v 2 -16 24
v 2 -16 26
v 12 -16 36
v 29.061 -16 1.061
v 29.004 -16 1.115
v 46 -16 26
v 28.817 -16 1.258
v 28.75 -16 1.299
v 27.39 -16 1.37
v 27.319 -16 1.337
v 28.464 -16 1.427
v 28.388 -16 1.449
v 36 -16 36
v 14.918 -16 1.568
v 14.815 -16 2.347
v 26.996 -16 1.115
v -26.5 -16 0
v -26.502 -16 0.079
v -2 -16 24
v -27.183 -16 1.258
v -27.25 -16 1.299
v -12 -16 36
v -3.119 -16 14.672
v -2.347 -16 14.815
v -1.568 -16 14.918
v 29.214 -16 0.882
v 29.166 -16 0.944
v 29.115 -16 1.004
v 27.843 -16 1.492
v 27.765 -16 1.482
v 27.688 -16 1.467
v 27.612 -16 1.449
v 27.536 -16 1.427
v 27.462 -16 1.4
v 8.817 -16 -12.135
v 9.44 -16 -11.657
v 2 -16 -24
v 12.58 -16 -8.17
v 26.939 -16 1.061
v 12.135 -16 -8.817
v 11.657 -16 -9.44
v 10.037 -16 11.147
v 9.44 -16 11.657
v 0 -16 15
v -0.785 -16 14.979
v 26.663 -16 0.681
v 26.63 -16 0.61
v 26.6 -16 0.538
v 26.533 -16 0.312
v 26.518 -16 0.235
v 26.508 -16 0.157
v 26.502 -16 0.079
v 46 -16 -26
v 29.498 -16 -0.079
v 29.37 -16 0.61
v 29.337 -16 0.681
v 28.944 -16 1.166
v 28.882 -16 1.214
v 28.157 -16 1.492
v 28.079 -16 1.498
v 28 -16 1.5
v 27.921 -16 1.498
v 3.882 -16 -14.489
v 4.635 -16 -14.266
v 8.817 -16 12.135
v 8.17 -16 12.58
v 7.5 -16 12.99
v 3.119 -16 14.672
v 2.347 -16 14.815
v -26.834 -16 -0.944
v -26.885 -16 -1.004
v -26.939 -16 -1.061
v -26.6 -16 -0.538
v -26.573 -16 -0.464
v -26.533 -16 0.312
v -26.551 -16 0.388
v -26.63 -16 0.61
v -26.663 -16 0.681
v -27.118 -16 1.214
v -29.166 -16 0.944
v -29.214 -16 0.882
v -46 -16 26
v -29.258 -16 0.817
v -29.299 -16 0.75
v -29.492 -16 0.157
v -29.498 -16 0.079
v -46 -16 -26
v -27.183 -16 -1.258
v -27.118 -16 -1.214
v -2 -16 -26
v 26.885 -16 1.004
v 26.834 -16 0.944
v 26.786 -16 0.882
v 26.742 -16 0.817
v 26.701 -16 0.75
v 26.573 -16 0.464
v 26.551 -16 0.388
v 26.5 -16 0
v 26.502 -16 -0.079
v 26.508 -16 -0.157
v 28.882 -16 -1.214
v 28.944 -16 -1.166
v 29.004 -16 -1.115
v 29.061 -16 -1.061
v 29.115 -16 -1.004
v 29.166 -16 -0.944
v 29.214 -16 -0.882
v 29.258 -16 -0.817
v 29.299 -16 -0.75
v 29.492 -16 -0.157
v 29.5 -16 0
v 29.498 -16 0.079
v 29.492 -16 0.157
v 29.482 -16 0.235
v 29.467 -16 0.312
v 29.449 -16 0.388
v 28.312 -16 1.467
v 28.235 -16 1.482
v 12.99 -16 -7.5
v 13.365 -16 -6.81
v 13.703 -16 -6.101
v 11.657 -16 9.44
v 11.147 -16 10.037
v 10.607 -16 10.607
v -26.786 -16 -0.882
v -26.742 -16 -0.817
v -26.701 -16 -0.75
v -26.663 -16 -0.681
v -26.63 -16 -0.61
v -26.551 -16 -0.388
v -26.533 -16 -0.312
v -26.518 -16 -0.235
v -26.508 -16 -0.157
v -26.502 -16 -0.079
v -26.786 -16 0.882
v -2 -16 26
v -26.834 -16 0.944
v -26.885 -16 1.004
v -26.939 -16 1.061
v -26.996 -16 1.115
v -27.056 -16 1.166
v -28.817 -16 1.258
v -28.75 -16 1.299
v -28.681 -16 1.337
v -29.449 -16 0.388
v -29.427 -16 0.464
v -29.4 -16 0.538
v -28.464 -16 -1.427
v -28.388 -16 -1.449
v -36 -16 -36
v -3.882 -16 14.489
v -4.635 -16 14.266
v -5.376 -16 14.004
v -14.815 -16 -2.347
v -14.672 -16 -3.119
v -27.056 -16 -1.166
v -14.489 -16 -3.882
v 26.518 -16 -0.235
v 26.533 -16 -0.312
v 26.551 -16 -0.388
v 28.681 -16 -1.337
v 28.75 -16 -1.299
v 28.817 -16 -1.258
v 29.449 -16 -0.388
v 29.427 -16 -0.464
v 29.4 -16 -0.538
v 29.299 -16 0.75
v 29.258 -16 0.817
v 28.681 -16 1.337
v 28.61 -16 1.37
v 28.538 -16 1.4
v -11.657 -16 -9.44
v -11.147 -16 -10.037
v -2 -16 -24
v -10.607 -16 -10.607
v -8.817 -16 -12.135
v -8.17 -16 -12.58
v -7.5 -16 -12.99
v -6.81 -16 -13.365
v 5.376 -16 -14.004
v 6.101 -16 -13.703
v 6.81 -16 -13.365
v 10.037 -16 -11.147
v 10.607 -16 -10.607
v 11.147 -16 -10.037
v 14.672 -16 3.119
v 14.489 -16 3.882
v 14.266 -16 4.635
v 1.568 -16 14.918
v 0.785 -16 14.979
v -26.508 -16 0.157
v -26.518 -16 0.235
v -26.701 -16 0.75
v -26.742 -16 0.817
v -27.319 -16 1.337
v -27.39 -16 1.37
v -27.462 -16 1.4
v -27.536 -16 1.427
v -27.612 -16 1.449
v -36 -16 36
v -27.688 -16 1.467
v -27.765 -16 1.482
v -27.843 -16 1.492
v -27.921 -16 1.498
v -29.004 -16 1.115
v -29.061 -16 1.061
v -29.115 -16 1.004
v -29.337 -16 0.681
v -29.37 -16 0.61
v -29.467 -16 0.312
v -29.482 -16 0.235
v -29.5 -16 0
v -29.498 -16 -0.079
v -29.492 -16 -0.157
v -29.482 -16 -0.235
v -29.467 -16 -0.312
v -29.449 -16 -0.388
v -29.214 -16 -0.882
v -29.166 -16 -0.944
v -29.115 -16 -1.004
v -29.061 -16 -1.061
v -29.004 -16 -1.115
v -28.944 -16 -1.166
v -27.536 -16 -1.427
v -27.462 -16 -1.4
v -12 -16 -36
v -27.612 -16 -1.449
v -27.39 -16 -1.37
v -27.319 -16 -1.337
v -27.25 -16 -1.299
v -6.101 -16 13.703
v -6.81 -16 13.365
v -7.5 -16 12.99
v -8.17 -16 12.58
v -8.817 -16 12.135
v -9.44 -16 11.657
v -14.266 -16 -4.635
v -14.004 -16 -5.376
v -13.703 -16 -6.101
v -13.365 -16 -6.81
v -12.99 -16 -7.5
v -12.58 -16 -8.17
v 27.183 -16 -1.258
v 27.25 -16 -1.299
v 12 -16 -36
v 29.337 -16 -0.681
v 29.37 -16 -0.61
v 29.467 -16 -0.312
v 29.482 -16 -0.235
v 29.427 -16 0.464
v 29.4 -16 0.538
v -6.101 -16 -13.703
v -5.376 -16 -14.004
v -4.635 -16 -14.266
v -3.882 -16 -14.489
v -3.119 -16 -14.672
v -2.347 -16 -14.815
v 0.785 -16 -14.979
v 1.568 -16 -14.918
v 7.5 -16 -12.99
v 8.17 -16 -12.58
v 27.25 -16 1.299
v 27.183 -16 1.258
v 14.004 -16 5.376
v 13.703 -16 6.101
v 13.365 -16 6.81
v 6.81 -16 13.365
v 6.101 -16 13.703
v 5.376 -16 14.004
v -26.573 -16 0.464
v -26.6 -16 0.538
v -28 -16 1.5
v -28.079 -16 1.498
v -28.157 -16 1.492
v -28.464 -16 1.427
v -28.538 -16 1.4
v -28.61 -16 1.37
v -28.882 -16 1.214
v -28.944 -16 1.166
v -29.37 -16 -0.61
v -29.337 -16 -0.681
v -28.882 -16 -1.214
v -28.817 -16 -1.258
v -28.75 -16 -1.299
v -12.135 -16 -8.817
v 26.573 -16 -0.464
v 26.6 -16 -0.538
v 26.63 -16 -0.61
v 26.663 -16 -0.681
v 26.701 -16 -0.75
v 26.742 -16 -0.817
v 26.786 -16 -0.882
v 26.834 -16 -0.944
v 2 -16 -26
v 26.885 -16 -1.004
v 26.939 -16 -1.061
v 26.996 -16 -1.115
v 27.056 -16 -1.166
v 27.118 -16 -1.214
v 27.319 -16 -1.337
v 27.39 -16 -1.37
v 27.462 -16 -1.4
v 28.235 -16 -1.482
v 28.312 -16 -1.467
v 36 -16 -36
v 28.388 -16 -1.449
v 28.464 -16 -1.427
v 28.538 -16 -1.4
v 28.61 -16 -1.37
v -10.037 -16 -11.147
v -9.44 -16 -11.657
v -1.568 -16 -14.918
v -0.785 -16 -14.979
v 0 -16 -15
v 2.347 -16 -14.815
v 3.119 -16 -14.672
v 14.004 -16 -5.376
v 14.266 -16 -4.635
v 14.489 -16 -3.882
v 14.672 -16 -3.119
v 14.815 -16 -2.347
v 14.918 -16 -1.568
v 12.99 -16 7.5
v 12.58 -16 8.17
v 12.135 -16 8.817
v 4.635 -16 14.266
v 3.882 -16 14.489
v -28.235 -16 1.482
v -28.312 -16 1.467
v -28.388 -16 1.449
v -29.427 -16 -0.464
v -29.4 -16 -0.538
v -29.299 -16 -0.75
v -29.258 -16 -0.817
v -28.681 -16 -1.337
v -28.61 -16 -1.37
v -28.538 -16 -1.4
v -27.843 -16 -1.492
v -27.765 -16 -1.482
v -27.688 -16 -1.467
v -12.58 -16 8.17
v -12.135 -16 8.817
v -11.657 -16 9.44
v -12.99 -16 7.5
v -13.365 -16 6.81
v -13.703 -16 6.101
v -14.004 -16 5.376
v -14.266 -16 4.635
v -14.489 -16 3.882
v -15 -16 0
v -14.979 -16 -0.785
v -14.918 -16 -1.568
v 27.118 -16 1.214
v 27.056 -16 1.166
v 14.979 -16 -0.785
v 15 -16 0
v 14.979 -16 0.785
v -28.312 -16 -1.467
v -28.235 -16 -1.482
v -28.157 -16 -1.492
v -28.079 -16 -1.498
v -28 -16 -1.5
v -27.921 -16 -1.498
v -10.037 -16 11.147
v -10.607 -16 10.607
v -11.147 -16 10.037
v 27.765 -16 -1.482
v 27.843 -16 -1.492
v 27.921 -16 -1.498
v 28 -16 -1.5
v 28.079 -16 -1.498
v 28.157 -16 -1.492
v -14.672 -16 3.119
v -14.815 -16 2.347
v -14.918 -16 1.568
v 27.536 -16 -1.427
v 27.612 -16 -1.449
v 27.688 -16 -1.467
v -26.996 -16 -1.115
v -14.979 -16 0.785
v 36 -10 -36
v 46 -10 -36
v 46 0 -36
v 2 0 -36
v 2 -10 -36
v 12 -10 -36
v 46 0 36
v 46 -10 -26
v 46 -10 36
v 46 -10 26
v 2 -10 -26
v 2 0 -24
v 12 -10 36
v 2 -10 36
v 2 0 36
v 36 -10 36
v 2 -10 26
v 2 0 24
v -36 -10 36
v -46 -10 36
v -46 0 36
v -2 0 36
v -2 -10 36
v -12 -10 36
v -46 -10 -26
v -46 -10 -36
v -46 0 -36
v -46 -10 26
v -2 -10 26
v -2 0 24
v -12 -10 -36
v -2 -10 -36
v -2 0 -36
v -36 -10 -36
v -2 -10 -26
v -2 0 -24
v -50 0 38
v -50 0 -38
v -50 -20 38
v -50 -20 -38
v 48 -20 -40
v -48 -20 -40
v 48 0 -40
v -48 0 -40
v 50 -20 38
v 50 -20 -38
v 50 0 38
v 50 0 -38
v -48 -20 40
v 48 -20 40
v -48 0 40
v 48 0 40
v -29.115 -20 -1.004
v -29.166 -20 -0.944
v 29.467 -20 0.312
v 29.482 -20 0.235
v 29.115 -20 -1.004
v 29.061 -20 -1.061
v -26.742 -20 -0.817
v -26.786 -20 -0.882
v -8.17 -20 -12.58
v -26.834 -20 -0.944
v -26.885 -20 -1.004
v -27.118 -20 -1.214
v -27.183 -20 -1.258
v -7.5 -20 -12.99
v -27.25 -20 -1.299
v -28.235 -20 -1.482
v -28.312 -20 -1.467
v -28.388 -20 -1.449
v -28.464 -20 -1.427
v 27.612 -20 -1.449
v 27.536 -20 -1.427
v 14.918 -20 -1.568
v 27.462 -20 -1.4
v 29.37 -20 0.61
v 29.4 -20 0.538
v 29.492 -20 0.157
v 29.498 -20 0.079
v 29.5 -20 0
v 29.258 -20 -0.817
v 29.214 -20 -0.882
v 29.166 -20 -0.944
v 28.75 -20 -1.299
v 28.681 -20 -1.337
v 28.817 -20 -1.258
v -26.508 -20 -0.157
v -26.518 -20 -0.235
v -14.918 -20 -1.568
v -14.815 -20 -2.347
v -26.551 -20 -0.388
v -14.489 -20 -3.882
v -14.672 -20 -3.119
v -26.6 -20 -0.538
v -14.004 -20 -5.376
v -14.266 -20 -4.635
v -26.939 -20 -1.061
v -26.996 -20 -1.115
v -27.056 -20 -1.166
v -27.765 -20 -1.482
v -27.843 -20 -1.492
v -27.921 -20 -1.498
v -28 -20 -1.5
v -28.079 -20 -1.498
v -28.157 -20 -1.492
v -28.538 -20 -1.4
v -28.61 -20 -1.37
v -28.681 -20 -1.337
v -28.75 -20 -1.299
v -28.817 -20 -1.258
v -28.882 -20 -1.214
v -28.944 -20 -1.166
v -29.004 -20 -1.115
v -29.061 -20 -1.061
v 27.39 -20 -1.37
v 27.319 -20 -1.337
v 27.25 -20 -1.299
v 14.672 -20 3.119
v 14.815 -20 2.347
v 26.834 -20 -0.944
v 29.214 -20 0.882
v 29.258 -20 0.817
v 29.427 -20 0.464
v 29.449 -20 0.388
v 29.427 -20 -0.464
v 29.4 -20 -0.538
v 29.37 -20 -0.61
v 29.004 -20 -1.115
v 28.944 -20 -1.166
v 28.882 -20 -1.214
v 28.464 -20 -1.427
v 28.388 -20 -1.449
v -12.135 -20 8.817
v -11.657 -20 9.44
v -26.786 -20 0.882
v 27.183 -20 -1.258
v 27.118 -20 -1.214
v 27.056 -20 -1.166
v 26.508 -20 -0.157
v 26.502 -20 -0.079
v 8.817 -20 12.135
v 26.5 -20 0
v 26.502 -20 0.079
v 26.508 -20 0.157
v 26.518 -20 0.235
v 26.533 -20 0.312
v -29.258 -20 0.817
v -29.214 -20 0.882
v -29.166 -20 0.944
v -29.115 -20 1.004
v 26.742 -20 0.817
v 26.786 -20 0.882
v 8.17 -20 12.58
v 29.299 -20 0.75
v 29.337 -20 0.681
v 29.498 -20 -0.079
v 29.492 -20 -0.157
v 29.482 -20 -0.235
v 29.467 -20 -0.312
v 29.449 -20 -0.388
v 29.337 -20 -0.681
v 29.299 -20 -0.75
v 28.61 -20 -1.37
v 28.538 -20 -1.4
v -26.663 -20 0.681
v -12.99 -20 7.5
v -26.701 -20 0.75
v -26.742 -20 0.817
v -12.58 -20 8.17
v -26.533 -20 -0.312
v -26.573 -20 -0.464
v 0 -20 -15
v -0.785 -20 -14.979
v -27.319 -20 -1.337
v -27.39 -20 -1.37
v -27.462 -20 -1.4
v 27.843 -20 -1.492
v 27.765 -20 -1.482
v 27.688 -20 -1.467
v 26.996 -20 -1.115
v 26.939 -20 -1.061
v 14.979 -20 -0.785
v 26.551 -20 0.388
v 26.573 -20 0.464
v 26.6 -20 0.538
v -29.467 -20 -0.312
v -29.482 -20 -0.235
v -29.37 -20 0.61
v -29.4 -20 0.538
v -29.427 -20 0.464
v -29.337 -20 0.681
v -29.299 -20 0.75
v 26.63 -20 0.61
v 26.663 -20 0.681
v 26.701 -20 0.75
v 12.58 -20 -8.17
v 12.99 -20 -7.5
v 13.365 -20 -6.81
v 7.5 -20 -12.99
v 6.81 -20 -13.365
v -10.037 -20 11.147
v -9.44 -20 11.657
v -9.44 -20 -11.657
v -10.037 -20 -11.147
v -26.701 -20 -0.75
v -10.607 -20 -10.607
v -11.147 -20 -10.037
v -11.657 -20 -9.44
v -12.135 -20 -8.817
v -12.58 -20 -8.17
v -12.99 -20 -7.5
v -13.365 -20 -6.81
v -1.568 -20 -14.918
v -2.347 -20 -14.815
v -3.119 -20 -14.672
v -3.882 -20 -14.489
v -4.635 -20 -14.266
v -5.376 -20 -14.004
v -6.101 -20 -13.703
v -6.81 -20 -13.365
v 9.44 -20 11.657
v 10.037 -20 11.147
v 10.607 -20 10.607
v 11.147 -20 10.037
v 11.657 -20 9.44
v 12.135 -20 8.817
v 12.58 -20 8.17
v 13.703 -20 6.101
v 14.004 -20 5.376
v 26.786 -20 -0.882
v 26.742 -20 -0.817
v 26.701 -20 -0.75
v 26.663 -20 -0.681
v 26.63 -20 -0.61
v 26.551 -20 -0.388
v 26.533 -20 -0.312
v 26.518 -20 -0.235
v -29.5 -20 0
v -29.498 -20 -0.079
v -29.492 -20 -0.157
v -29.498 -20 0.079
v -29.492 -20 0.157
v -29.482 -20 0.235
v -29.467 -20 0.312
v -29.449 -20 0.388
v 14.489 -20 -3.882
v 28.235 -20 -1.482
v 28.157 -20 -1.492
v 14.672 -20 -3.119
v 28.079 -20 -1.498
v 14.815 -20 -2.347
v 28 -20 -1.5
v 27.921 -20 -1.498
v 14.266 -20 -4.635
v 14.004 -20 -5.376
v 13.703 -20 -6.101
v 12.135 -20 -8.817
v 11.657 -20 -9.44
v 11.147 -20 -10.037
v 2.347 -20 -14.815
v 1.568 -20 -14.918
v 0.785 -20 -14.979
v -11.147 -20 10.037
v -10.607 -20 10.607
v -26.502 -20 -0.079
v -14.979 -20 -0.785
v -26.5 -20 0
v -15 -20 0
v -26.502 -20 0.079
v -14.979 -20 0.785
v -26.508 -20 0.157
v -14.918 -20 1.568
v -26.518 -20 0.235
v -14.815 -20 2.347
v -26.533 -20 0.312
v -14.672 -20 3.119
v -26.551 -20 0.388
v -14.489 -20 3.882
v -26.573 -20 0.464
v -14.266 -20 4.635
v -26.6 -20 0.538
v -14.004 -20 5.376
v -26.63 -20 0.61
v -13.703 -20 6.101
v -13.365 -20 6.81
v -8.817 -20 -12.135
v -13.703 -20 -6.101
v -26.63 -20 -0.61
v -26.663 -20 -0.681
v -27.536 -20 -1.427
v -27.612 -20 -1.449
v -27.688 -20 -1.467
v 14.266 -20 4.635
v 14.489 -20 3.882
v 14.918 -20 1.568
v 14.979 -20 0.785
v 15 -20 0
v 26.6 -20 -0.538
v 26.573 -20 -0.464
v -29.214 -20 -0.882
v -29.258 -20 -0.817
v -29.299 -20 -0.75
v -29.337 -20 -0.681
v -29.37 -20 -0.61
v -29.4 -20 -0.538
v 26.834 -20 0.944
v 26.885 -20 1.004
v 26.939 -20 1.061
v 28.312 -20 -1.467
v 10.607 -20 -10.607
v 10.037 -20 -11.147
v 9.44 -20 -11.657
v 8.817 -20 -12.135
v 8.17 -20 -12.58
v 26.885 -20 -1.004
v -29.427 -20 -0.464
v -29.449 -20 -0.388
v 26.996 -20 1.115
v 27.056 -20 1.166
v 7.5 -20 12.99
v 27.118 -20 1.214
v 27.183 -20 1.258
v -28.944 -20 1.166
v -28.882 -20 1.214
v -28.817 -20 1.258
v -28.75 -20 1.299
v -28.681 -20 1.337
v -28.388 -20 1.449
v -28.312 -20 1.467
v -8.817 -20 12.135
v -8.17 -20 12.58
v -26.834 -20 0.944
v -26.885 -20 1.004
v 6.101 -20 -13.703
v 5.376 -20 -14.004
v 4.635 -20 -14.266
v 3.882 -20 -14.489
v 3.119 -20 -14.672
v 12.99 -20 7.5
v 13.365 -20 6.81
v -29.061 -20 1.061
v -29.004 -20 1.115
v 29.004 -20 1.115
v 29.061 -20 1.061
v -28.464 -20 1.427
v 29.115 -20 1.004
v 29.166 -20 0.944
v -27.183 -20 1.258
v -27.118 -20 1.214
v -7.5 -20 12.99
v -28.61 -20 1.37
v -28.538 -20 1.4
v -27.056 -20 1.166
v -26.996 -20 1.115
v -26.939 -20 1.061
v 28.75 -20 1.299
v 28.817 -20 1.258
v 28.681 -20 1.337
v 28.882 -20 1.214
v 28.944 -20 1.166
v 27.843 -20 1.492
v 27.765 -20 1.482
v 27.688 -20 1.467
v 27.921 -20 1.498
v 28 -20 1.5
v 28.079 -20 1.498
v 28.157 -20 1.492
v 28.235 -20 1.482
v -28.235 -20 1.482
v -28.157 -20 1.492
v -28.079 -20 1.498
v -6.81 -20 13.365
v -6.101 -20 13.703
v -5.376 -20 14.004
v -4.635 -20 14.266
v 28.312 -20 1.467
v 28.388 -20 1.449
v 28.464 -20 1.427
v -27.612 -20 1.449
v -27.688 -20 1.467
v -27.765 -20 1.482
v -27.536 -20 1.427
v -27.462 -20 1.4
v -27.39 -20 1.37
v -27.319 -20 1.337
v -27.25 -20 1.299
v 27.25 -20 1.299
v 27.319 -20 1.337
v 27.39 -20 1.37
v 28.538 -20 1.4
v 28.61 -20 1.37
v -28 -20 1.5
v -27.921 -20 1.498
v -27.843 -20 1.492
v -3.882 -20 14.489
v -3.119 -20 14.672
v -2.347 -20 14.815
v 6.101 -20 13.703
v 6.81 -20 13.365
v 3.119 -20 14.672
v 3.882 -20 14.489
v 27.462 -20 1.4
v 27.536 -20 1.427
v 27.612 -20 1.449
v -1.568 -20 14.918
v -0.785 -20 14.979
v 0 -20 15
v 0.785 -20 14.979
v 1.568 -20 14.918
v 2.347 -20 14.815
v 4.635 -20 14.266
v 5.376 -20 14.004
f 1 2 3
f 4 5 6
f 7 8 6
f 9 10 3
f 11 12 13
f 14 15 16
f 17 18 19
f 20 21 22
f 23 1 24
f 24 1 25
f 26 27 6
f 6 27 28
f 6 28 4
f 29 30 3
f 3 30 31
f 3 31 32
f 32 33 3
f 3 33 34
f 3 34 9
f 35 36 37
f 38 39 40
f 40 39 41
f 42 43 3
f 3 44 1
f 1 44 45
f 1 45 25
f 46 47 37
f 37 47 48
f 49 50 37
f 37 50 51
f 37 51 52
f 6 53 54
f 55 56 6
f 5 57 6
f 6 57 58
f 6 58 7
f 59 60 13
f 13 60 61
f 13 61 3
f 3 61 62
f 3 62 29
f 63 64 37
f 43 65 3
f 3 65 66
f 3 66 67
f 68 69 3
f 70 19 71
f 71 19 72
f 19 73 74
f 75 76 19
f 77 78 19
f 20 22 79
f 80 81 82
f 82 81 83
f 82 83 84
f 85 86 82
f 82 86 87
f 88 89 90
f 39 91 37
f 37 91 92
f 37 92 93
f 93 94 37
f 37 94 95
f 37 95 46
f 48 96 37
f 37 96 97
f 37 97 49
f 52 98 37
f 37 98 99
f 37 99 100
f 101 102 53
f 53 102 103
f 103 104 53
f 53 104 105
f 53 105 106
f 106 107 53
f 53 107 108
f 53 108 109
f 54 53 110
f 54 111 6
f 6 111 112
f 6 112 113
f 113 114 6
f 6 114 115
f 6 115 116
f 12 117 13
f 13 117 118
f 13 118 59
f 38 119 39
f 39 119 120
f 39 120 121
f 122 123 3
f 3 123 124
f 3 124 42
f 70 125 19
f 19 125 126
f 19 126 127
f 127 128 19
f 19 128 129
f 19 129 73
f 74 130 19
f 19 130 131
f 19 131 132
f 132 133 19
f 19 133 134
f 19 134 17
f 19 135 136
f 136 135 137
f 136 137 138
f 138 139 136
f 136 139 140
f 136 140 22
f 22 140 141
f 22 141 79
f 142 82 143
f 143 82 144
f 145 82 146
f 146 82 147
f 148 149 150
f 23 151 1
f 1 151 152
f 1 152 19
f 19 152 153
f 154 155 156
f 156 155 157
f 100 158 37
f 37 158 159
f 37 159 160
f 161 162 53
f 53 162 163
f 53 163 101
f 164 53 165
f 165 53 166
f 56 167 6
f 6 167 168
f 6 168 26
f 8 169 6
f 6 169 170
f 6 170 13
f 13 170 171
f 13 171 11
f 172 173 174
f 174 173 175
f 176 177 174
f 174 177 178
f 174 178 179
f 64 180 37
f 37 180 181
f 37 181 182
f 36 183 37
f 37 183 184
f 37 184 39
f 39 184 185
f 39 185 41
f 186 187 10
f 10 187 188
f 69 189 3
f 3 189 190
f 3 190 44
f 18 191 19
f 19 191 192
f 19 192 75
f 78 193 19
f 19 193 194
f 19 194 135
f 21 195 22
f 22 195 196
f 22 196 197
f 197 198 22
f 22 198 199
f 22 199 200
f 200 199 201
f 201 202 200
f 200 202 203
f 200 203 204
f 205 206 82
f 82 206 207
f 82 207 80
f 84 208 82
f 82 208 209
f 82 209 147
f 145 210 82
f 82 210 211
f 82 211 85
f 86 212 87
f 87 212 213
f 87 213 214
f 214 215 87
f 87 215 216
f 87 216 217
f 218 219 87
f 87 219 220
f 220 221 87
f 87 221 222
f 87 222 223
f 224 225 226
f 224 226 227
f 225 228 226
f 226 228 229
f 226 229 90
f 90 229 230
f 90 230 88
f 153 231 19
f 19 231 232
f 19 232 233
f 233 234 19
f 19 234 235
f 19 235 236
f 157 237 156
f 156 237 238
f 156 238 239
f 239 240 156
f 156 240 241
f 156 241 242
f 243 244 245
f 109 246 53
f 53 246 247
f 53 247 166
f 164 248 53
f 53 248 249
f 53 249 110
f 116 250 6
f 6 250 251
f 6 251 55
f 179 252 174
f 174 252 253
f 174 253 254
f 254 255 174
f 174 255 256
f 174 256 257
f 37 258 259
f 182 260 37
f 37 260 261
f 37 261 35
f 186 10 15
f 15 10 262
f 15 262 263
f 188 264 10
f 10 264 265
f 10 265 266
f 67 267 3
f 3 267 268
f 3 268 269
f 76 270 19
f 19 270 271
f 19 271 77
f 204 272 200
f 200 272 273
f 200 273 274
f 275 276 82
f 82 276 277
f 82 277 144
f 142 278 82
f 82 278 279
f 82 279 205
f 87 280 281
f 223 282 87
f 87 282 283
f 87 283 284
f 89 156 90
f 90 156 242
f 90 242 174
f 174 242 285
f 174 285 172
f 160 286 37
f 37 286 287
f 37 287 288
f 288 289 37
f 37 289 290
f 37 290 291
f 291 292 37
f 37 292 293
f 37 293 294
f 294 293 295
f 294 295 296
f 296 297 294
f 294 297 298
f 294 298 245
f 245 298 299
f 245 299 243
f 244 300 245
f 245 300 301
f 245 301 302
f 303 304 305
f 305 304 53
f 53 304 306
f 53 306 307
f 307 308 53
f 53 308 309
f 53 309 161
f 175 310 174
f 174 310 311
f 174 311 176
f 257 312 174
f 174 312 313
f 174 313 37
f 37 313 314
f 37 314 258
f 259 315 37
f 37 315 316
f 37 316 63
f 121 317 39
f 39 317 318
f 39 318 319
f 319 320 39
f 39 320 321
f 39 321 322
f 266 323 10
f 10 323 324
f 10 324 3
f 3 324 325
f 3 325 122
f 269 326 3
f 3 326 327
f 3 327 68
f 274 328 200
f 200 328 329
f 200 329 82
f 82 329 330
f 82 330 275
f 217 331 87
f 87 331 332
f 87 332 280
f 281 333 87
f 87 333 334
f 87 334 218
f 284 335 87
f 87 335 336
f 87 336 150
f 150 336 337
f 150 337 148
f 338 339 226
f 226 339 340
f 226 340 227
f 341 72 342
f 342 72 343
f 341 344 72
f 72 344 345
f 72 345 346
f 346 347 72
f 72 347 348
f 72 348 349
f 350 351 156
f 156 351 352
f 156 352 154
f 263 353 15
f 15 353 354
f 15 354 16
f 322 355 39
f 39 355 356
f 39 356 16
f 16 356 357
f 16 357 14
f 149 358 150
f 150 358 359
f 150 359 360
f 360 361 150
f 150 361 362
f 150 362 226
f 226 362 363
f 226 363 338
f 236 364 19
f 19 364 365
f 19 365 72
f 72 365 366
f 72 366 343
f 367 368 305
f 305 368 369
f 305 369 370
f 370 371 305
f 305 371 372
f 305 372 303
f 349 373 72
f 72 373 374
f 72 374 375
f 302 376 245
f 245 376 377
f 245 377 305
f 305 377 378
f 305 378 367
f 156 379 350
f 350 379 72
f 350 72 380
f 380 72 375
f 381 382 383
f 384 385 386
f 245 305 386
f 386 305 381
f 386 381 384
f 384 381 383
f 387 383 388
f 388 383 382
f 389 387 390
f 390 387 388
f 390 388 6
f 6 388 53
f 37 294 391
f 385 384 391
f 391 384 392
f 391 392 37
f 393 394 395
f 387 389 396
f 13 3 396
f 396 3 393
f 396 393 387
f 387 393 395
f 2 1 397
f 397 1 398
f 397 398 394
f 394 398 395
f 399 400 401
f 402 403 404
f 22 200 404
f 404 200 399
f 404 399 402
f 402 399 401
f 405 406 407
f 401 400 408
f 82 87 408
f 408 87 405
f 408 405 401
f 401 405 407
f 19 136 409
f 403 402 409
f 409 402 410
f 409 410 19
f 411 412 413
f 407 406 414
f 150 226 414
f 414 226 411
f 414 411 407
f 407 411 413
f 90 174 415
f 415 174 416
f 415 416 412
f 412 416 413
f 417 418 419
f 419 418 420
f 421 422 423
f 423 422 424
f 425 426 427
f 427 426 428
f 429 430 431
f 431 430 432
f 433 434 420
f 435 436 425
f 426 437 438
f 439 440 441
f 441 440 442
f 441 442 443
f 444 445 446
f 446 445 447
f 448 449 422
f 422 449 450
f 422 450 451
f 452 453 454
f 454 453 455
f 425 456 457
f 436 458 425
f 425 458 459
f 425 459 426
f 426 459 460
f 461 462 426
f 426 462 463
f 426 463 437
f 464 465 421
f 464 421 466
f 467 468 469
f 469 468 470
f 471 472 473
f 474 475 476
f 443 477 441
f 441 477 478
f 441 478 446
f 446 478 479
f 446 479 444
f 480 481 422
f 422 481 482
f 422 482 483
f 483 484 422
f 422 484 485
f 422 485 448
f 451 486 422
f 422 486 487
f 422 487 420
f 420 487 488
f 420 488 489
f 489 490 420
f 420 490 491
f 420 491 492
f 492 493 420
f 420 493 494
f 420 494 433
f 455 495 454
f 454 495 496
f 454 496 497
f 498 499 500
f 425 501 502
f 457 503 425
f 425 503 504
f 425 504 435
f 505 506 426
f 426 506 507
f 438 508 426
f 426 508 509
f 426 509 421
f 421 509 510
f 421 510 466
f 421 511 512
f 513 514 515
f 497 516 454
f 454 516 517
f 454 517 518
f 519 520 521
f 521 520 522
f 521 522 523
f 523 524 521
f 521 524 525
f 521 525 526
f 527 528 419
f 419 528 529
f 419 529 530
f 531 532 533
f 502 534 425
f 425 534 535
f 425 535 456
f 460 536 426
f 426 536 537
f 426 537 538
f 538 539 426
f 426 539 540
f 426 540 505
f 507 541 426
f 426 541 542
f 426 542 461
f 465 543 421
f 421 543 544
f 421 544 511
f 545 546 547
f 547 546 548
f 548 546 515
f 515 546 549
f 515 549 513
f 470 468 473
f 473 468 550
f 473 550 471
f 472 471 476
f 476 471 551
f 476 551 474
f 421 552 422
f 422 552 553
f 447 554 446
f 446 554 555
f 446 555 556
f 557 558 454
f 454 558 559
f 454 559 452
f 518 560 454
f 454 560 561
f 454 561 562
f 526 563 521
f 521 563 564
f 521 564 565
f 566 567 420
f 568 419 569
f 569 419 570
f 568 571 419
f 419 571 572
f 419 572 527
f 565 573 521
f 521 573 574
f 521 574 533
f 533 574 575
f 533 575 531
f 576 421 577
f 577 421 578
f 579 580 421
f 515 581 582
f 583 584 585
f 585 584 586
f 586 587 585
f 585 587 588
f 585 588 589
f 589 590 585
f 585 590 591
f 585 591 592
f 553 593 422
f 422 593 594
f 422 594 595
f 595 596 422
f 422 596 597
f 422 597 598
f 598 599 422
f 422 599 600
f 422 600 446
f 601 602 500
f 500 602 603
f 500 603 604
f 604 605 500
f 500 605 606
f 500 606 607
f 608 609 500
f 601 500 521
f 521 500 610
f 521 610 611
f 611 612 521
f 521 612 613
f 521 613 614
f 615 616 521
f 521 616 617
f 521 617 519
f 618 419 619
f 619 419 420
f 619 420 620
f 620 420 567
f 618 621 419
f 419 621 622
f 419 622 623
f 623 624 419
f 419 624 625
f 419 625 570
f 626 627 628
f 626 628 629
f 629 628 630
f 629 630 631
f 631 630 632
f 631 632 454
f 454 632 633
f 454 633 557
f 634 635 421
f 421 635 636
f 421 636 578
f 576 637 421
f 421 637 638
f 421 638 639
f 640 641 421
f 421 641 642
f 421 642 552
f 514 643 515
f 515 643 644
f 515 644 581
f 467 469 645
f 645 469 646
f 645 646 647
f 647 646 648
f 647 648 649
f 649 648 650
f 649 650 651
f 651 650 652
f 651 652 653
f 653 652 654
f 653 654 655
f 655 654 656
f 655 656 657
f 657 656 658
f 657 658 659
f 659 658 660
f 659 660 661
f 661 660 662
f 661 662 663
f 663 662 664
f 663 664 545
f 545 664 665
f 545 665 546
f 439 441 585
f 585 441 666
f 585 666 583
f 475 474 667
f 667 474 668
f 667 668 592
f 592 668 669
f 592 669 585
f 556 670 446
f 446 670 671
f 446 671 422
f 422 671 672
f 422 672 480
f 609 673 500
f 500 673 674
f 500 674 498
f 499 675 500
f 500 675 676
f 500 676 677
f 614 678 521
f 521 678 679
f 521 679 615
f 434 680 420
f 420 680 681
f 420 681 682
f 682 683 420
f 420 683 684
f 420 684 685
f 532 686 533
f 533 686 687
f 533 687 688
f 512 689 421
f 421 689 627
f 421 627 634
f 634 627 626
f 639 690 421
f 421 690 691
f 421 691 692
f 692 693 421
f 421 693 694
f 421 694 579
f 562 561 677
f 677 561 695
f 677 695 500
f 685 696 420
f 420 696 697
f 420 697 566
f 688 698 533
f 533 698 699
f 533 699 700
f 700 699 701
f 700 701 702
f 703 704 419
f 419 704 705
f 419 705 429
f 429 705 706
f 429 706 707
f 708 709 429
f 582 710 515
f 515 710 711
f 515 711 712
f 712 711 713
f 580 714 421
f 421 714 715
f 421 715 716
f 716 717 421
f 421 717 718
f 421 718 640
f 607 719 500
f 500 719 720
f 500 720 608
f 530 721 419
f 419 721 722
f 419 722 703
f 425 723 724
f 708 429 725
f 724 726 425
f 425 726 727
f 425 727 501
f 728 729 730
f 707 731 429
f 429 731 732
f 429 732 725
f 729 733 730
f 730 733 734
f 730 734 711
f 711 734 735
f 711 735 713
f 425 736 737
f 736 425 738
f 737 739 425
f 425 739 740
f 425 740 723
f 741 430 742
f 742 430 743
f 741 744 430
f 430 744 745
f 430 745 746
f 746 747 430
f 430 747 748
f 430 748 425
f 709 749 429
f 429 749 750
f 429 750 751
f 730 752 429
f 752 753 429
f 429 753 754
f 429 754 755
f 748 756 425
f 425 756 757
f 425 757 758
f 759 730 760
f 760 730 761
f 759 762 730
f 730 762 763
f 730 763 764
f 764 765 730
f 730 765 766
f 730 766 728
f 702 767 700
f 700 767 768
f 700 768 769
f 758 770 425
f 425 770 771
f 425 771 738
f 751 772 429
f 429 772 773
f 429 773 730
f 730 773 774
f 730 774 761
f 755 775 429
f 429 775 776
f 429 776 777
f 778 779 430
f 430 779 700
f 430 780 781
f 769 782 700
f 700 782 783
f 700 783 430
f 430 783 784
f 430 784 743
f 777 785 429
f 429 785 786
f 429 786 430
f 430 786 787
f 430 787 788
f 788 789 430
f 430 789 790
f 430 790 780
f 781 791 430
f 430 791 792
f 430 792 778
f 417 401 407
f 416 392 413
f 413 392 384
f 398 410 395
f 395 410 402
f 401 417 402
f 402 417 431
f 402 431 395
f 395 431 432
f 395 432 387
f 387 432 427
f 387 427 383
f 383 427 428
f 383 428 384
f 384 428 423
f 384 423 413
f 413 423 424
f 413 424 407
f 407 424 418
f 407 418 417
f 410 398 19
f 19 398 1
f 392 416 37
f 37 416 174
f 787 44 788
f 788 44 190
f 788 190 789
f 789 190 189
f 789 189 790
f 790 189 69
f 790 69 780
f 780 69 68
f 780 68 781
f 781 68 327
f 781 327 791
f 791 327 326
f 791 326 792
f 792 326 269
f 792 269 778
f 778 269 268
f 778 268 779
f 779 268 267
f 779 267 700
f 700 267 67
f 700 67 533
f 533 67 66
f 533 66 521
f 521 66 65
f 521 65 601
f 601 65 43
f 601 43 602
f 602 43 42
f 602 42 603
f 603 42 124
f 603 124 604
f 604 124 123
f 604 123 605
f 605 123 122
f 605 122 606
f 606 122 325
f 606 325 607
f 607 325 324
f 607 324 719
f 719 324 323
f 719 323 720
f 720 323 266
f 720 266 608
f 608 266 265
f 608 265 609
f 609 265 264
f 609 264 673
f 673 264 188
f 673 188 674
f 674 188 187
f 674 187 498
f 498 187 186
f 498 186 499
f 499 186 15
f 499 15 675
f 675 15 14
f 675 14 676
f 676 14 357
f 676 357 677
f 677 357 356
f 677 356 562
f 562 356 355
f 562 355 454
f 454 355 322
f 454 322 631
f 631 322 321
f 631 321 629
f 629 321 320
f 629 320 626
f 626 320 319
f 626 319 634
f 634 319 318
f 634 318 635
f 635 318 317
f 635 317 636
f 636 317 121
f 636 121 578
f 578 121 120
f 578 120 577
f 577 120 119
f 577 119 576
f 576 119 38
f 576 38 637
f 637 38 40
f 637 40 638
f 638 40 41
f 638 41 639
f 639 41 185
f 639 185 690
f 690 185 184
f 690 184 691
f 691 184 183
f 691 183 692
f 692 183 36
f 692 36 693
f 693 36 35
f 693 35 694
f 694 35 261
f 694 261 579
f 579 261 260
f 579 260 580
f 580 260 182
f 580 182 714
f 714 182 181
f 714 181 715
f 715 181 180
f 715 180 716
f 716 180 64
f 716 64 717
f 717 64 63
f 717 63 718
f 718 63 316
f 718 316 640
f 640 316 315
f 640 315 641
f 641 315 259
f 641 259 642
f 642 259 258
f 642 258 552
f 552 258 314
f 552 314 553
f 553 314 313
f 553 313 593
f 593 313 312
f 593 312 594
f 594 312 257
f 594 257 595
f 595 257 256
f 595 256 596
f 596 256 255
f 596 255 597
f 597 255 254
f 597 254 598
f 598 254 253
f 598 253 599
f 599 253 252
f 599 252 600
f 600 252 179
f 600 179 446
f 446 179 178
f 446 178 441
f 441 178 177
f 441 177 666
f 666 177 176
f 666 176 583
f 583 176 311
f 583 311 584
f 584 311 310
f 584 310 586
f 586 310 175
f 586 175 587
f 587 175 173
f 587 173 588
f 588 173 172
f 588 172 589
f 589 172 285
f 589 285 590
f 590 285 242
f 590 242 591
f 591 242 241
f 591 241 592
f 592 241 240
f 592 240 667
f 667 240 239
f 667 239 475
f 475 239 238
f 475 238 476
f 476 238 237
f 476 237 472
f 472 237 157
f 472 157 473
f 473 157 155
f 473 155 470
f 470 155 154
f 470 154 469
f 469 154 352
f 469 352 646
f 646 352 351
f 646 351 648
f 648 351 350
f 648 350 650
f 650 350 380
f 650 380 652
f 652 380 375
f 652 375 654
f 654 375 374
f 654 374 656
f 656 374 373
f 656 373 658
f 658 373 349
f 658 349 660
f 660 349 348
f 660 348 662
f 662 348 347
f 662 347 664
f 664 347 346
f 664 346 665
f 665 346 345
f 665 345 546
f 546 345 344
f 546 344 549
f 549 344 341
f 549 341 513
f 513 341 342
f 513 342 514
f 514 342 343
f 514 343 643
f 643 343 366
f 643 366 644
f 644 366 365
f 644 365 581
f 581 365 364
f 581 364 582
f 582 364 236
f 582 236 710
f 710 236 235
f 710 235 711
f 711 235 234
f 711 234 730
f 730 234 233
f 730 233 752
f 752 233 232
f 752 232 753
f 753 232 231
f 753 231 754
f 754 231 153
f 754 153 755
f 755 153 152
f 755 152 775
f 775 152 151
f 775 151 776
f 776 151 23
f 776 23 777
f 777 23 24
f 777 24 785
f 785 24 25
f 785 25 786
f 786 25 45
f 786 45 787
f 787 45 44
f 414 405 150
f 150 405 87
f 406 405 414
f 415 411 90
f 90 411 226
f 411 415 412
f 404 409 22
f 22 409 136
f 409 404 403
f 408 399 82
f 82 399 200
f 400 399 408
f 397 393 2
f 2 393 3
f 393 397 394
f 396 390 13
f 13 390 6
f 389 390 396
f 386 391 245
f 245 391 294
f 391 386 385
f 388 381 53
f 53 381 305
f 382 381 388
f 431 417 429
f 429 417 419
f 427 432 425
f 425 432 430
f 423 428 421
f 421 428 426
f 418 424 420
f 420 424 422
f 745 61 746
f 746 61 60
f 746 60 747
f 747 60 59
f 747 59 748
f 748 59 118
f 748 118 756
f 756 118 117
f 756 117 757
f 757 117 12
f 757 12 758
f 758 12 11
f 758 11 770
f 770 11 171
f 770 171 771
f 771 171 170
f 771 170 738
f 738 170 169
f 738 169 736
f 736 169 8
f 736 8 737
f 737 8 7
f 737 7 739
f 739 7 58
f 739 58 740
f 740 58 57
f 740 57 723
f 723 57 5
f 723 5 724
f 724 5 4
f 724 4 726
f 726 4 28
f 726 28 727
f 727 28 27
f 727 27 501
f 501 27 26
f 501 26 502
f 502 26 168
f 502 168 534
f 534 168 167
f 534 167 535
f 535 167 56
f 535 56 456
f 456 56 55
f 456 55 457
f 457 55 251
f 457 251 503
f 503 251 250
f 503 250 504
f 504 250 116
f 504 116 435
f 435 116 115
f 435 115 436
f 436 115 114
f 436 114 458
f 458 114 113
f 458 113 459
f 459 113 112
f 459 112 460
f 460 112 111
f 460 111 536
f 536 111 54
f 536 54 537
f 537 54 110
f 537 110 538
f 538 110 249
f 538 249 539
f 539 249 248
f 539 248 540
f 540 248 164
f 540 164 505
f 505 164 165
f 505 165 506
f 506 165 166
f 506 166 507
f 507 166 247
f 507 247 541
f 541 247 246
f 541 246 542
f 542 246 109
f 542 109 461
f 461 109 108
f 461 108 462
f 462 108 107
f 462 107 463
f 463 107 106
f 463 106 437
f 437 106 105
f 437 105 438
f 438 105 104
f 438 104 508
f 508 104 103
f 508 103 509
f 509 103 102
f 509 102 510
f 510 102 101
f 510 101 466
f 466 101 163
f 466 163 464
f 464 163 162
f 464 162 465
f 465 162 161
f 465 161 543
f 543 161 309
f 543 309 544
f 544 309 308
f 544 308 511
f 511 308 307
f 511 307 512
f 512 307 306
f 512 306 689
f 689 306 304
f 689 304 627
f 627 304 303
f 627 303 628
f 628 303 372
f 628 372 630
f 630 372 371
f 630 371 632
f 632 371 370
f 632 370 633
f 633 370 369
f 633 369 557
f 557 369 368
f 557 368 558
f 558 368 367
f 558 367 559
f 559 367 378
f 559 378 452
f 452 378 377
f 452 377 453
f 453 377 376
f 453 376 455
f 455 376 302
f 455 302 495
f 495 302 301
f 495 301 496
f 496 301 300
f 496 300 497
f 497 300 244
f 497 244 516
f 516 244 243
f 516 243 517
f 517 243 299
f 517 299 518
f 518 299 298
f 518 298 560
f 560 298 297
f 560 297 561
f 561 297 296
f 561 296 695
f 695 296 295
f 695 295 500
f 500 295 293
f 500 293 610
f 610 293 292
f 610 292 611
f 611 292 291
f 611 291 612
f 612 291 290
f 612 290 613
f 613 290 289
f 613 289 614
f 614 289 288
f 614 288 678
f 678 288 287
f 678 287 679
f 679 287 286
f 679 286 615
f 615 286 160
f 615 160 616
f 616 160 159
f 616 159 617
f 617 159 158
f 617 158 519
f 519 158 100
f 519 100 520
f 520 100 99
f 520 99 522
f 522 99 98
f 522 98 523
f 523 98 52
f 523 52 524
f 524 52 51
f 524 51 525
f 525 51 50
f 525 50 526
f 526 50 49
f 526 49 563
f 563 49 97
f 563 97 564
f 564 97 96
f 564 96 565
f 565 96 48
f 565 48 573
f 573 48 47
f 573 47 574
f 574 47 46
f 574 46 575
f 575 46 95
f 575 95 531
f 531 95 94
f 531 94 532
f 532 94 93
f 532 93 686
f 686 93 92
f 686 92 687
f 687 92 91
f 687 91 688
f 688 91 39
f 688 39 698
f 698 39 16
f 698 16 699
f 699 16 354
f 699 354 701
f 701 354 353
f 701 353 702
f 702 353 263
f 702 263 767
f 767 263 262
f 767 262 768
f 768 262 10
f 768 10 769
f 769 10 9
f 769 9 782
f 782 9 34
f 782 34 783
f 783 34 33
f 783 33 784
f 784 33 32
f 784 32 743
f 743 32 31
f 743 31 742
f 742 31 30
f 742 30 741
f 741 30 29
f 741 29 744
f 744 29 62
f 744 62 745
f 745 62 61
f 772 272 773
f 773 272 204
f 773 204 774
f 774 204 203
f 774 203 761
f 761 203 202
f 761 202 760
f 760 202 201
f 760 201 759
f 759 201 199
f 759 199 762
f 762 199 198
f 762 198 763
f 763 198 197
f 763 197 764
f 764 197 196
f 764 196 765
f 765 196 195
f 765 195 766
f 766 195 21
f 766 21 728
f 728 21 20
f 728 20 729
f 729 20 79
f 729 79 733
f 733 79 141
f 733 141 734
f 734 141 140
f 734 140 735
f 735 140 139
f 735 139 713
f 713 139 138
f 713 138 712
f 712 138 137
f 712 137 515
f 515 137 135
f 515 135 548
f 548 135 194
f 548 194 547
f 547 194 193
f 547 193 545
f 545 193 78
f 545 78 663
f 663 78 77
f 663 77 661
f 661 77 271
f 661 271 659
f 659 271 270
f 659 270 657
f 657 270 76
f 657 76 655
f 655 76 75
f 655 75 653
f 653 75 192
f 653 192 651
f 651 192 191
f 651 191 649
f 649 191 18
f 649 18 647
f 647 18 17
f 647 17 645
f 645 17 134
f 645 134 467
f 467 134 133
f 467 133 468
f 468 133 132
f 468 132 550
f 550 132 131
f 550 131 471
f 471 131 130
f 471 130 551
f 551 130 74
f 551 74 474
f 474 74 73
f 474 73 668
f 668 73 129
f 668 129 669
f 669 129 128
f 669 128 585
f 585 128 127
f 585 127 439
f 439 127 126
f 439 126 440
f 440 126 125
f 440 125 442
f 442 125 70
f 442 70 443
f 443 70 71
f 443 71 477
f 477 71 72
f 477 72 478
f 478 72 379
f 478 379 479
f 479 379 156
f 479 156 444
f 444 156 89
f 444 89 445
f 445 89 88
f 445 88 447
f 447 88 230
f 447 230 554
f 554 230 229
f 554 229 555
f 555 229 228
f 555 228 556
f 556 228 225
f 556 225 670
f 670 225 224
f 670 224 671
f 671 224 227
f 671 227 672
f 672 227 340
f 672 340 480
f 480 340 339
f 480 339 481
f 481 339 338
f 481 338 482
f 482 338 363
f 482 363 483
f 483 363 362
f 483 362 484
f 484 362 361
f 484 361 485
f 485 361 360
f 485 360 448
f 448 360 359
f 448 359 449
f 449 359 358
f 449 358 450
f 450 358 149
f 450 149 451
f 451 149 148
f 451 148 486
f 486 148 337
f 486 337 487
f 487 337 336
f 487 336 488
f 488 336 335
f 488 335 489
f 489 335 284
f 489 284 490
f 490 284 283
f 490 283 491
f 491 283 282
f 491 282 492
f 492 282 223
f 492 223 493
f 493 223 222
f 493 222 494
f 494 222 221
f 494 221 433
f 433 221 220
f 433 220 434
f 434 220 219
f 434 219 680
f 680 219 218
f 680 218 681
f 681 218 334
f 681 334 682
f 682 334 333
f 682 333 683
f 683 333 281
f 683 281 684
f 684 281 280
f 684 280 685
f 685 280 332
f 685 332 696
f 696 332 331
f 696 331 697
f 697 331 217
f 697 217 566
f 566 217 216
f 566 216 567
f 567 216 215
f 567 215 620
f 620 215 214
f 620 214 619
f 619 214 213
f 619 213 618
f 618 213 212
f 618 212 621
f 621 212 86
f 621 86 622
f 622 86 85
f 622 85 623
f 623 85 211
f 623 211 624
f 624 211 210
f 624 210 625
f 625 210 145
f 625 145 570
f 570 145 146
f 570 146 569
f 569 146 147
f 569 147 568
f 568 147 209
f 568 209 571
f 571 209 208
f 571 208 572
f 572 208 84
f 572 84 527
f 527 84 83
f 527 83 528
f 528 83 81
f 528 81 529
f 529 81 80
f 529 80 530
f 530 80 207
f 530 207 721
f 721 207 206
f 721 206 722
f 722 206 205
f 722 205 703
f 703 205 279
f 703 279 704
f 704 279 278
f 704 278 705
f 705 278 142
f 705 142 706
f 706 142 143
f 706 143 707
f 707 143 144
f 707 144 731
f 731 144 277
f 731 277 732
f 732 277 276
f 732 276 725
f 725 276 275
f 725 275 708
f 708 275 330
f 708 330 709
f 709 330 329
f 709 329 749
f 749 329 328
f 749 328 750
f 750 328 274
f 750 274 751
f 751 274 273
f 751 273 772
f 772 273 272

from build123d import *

# Parameters (mm, degrees)
SKETCH1_W           = 100
SKETCH1_H           = 80
BOSS_EXTRUDE1_DEPTH = 20
SHELL2_T            = -4
SKETCH14_W          = 4
SKETCH14_H          = 12
BOSS_EXTRUDE5_DEPTH = 16
SKETCH5_R           = 15
CUT_EXTRUDE1_DEPTH  = 5
BOSS_EXTRUDE6_DEPTH = 6
CHAMFER1_SIZE       = 2
SKETCH16_R          = 1.5
CUT_EXTRUDE2_DEPTH  = 4


with BuildPart() as part:
    # Sketch1 → Boss-Extrude1 (new body)
    with BuildSketch(Plane(origin=(0, 0, 0), x_dir=(1, 0, 0), z_dir=(0, 1, 0))):
        Rectangle(SKETCH1_W, SKETCH1_H)
    extrude(amount=-BOSS_EXTRUDE1_DEPTH)

    # Shell2
    shell2_openings = [part.faces().sort_by_distance(p)[0] for p in [
        (0, 0, 0),
    ]]
    offset(amount=SHELL2_T, openings=shell2_openings, kind=Kind.INTERSECTION)

    # Sketch14 → Boss-Extrude5 (add)
    with BuildSketch(Plane(origin=(0, 0, 0), x_dir=(1, 0, 0), z_dir=(0, 1, 0))):
        with Locations((0, -30)):
            Rectangle(SKETCH14_W, SKETCH14_H)
        with Locations((0, 30)):
            Rectangle(SKETCH14_W, SKETCH14_H)
    extrude(amount=-BOSS_EXTRUDE5_DEPTH)

    # Sketch5 → Cut-Extrude1 (cut, through all)
    with BuildSketch(Plane(origin=(0, -16, 0), x_dir=(1, 0, 0), z_dir=(0, 1, 0))):
        Circle(SKETCH5_R)
    extrude(amount=-CUT_EXTRUDE1_DEPTH, mode=Mode.SUBTRACT)

    # Sketch15 → Boss-Extrude6 (add)
    with BuildSketch(Plane(origin=(0, -16, 0), x_dir=(1, 0, 0), z_dir=(0, 1, 0))):
        Polygon((-46, 36), (-46, 26), (-36, 36), align=None)
        Polygon((-2, 36), (-2, 26), (-12, 36), align=None)
        Polygon((-2, -26), (-12, -36), (-2, -36), align=None)
        Polygon((-46, -26), (-36, -36), (-46, -36), align=None)
        Polygon((2, -36), (2, -26), (12, -36), align=None)
        Polygon((46, -36), (46, -26), (36, -36), align=None)
        Polygon((2, 26), (12, 36), (2, 36), align=None)
        Polygon((46, 26), (36, 36), (46, 36), align=None)
    extrude(amount=BOSS_EXTRUDE6_DEPTH)

    # Chamfer1
    chamfer1_edges = [part.edges().sort_by_distance(p)[0] for p in [
        (-50, -10, -40),
        (50, -10, -40),
        (50, -10, 40),
        (-50, -10, 40),
    ]]
    chamfer(chamfer1_edges, length=CHAMFER1_SIZE)

    # Sketch16 → Cut-Extrude2 (cut)
    with BuildSketch(Plane(origin=(0, -16, 0), x_dir=(1, 0, 0), z_dir=(0, 1, 0))):
        with Locations((-28, 0)):
            Circle(SKETCH16_R)
        with Locations((28, 0)):
            Circle(SKETCH16_R)
    extrude(amount=-CUT_EXTRUDE2_DEPTH, mode=Mode.SUBTRACT)


solid = part.part
